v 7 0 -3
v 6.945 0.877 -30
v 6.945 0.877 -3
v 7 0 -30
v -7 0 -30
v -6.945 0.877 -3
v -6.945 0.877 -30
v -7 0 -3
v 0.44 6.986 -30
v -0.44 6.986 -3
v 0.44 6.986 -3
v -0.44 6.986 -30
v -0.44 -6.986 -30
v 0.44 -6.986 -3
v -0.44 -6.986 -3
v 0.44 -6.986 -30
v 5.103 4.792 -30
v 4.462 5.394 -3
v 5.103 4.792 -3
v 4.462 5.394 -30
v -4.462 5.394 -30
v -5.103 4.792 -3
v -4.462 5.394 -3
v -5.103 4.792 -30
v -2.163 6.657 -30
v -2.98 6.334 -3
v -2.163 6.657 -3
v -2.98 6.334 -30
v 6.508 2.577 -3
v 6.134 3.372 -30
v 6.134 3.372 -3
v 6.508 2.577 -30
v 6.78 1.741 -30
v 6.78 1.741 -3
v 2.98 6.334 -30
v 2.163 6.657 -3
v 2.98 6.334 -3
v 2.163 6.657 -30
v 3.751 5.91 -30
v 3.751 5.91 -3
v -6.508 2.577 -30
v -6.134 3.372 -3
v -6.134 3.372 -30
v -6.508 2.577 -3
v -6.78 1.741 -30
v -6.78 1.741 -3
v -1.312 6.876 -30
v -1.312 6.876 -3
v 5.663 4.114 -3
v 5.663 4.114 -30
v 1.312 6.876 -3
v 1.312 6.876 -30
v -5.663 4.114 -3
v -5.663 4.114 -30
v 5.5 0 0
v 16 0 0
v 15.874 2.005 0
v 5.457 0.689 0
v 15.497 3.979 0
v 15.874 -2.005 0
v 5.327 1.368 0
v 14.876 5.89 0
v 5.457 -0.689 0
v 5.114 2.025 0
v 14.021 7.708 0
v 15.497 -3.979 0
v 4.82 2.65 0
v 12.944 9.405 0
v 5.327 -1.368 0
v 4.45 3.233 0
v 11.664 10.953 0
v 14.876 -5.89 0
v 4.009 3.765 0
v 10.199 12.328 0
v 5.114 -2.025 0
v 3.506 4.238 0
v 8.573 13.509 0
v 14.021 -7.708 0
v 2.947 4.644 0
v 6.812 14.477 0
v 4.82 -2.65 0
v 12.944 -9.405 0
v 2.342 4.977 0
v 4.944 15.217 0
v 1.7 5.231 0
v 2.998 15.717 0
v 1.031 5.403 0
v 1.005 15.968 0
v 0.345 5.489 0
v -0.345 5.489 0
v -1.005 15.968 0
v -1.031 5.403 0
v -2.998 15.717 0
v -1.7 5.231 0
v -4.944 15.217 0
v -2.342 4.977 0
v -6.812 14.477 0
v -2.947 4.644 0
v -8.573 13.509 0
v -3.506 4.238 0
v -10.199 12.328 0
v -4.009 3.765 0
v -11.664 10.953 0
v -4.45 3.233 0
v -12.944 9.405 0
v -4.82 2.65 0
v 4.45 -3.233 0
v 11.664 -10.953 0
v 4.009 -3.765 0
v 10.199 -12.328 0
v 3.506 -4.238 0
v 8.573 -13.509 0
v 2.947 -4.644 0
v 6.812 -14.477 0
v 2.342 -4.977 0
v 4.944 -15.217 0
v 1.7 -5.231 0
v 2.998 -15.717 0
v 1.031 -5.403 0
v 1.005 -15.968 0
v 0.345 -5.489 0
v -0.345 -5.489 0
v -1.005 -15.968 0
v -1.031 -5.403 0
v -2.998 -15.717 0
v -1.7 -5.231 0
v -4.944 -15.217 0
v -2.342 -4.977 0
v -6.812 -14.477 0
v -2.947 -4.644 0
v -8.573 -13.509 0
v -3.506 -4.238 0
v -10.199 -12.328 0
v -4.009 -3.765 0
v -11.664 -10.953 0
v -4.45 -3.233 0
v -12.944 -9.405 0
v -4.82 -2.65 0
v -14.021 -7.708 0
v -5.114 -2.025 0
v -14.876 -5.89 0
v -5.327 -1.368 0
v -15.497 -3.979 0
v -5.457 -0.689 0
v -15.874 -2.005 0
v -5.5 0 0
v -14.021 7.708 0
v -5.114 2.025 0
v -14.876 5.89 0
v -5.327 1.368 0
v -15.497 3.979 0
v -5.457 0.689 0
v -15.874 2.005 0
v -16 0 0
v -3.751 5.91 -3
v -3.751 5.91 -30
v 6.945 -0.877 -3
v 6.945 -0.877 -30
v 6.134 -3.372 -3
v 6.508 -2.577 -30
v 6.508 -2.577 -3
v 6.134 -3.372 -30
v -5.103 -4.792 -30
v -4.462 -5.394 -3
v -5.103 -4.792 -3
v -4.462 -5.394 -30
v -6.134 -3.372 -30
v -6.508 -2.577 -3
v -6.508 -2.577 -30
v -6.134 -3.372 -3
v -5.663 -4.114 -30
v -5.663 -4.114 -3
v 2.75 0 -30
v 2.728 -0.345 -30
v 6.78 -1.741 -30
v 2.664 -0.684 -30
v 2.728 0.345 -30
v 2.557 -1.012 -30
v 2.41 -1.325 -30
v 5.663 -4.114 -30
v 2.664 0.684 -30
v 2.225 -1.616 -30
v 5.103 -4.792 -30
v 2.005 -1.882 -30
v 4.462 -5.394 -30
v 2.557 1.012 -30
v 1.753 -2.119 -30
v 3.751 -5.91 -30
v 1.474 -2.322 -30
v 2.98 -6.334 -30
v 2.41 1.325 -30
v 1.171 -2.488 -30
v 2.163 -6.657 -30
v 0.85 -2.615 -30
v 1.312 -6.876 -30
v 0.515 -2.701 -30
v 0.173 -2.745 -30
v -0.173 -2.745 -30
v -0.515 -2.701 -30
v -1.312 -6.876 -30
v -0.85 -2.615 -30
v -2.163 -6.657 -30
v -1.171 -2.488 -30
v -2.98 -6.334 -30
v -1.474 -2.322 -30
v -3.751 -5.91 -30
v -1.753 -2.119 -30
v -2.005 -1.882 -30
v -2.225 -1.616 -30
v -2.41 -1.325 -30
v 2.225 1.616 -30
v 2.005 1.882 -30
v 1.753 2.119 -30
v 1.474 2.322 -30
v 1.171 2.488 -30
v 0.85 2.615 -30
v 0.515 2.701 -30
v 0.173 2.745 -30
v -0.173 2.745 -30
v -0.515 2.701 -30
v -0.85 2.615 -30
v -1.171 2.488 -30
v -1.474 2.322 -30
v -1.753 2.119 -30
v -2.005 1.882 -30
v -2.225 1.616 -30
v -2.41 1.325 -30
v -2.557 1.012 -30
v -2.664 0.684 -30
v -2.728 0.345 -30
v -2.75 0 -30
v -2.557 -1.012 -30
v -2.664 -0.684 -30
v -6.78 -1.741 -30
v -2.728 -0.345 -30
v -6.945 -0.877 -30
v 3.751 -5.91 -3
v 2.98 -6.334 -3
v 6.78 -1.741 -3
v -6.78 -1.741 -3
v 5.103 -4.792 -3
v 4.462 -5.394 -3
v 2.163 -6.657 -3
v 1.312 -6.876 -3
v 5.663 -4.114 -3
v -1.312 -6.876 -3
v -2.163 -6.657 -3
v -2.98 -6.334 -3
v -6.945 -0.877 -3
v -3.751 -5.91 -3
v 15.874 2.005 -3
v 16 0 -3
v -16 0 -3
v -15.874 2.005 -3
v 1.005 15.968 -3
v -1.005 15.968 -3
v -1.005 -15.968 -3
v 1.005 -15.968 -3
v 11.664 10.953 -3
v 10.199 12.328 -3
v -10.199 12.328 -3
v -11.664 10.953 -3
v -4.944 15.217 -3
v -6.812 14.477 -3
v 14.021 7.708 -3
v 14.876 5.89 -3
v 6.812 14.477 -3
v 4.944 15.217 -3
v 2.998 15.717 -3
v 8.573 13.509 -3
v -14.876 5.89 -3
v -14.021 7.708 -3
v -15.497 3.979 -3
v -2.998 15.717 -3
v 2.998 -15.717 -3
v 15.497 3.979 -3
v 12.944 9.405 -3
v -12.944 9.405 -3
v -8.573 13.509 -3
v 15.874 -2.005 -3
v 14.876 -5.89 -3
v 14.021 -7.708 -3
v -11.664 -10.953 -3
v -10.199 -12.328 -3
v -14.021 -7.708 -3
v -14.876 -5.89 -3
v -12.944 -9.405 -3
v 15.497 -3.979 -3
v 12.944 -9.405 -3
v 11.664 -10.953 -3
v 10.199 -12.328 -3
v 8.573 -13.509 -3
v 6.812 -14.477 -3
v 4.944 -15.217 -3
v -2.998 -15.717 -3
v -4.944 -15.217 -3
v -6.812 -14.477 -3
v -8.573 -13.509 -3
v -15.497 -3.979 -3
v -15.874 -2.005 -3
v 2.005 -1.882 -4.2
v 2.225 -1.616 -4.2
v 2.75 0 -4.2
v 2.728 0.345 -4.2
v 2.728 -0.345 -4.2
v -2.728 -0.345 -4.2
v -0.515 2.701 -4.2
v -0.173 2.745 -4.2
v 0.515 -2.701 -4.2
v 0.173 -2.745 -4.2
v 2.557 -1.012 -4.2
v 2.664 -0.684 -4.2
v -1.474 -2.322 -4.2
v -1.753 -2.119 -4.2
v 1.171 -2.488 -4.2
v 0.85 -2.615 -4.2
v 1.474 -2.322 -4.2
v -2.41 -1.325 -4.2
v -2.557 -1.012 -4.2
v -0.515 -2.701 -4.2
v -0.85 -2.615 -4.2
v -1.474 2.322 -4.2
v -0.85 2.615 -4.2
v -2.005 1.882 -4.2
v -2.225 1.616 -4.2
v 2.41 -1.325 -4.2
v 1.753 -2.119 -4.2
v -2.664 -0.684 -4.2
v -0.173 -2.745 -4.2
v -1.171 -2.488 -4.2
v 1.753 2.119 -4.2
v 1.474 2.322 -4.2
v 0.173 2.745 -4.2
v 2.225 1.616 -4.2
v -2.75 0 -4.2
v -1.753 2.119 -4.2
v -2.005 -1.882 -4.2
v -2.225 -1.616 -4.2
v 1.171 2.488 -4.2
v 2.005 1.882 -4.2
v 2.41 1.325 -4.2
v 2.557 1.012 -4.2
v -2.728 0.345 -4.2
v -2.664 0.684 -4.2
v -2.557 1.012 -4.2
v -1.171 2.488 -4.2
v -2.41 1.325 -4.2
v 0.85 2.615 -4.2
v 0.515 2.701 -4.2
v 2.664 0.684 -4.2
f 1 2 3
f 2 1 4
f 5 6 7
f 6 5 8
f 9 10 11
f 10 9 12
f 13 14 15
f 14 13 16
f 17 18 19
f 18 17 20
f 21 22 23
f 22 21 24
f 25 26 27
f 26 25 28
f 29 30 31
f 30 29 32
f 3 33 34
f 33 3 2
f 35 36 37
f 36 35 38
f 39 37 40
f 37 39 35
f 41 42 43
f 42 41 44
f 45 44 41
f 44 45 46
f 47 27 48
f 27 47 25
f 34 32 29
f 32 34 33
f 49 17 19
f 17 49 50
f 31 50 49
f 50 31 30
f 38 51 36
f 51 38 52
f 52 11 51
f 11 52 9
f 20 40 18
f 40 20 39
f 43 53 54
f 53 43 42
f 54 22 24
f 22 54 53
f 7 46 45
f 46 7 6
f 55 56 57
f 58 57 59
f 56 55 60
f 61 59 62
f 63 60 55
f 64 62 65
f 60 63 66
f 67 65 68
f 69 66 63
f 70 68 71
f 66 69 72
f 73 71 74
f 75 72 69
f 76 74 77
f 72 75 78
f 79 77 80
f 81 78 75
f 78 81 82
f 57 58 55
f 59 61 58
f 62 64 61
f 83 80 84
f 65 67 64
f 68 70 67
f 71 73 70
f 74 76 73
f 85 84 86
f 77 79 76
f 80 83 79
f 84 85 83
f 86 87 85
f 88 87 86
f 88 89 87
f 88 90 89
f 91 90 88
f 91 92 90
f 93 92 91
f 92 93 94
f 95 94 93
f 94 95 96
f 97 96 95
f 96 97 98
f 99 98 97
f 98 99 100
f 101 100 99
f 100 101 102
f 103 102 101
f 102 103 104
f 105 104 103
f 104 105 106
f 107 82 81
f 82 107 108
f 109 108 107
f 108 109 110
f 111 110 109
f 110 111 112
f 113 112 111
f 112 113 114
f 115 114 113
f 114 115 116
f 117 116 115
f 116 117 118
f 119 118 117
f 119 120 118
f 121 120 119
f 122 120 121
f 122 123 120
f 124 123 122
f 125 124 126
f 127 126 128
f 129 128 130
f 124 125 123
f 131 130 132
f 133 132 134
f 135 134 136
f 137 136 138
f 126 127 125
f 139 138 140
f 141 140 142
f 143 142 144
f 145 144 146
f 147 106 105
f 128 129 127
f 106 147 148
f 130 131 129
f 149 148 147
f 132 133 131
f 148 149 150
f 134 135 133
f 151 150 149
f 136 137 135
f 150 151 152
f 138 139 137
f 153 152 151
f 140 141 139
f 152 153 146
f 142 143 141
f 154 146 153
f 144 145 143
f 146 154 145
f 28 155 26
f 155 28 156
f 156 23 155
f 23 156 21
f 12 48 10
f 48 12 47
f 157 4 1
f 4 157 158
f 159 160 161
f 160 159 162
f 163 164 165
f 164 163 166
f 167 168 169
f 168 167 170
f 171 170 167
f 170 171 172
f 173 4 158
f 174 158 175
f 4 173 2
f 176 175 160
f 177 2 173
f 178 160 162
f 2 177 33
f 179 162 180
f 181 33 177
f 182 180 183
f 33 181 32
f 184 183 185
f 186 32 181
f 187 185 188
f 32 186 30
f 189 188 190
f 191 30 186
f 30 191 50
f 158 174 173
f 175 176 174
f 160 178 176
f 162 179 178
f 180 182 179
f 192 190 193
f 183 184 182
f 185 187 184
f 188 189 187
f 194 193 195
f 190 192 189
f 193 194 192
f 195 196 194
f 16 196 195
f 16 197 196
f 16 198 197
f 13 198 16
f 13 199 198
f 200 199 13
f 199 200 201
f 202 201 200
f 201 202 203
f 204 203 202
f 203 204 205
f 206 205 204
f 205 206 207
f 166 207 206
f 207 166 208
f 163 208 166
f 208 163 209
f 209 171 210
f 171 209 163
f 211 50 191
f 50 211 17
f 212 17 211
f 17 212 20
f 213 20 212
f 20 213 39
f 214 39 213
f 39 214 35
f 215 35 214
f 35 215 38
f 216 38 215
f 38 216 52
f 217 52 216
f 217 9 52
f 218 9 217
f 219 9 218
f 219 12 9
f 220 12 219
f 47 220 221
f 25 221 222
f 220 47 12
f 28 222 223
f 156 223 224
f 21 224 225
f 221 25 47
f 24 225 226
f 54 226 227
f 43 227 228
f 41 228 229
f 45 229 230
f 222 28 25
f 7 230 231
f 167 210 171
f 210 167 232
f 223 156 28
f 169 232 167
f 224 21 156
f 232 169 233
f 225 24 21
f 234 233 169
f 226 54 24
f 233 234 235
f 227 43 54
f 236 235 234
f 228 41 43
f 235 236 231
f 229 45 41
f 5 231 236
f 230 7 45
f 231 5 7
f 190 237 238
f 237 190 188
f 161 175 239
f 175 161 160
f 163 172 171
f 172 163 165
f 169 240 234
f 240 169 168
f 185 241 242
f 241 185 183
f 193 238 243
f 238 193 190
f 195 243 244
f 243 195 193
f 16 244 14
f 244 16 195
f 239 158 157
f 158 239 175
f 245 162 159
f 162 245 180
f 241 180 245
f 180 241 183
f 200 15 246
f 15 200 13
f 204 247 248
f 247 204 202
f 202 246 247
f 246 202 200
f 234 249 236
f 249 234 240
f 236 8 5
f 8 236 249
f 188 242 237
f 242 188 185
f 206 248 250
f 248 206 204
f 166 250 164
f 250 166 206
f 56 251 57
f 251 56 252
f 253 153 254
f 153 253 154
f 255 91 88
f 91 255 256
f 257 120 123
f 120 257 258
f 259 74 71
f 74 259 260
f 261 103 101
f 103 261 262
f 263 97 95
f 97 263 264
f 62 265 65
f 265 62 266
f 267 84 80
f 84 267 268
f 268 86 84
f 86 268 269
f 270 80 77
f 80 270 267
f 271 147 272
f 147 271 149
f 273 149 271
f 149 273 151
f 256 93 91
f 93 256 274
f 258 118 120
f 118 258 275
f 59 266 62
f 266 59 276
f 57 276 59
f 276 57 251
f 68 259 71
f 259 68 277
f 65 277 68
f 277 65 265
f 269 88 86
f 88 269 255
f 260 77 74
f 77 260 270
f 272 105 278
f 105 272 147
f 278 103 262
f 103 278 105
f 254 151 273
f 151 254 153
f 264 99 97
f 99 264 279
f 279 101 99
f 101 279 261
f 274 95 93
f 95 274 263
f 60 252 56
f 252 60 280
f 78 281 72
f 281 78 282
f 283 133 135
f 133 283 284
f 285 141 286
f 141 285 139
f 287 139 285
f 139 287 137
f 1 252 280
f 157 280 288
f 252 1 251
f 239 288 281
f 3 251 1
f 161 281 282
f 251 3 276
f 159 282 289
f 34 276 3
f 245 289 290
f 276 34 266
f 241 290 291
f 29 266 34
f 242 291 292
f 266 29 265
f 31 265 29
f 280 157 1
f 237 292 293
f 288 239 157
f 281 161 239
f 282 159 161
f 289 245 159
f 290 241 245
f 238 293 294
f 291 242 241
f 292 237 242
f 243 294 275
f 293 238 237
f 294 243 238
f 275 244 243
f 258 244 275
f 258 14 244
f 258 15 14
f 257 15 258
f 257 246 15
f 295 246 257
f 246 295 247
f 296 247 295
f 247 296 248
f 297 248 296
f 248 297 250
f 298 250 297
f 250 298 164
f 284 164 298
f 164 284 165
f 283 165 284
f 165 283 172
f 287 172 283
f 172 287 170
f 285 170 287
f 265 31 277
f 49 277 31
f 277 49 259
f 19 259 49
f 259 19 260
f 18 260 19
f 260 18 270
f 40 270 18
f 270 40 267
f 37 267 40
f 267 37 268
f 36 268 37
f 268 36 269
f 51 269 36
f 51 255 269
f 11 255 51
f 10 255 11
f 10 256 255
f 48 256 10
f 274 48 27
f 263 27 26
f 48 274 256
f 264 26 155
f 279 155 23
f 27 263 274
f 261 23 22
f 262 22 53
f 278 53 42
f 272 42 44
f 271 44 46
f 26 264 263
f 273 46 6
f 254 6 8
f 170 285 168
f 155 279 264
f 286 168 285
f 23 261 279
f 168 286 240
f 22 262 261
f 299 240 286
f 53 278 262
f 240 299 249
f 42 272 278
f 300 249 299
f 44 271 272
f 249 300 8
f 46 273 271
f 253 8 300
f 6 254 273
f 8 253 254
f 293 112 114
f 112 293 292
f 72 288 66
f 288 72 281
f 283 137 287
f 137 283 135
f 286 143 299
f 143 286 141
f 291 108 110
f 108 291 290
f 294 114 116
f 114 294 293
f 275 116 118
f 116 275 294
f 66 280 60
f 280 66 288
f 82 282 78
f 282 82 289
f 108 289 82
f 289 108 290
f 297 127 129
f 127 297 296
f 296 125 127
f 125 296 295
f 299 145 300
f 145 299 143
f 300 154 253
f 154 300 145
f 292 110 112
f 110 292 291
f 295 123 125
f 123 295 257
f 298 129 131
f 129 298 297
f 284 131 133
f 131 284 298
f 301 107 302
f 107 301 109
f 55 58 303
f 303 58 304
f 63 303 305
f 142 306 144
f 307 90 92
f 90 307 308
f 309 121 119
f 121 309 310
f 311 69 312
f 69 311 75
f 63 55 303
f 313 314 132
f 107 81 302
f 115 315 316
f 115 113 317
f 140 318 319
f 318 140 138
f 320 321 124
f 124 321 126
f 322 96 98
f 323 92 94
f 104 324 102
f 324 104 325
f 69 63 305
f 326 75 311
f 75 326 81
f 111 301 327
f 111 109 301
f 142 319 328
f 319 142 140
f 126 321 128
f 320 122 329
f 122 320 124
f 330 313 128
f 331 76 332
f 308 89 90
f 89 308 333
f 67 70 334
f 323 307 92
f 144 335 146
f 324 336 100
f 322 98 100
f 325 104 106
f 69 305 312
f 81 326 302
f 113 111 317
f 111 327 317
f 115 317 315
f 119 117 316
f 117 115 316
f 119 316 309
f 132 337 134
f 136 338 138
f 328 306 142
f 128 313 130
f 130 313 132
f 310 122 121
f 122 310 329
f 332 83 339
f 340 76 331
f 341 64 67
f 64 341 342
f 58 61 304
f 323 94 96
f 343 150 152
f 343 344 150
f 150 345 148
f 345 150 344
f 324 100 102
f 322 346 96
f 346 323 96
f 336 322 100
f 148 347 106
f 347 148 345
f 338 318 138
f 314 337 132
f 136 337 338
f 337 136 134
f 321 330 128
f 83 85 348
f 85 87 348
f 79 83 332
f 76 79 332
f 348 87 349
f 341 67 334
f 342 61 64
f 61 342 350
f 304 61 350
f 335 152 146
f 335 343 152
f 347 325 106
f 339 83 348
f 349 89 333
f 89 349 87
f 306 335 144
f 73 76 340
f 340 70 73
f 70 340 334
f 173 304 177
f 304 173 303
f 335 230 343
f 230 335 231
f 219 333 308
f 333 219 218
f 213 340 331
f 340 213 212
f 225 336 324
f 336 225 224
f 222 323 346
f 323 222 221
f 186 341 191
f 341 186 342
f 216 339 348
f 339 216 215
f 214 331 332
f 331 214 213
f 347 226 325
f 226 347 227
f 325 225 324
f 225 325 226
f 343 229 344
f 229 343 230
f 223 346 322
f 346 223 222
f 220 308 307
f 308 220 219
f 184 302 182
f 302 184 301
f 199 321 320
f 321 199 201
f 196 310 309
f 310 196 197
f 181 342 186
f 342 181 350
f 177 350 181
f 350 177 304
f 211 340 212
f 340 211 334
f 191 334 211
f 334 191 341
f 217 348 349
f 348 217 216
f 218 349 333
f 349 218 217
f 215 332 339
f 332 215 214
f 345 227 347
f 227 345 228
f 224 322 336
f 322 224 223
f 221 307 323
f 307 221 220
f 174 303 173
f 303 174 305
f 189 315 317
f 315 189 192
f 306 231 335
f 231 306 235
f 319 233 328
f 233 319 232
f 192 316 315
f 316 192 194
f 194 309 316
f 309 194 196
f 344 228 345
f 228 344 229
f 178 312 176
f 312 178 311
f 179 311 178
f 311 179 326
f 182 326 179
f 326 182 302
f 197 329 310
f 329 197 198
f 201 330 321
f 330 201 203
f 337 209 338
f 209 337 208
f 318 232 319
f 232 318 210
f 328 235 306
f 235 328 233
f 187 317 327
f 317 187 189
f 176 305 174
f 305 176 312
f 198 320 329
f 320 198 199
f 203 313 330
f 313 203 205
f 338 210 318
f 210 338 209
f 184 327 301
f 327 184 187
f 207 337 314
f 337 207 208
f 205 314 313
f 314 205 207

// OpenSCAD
$fn = 50;


difference() {
	union() {
		translate(v = [0, 0, -30.0000000000]) {
			cylinder(h = 30, r = 7.0000000000);
		}
		translate(v = [0, 0, -3.0000000000]) {
			cylinder(h = 3, r = 16.0000000000);
		}
	}
	union() {
		translate(v = [0, 0, 0]) {
			rotate(a = [0, 0, 0]) {
				difference() {
					union() {
						#translate(v = [0, 0, -30.0000000000]) {
							cylinder(h = 30, r = 2.2500000000);
						}
						#translate(v = [0, 0, -4.2000000000]) {
							cylinder(h = 4.2000000000, r1 = 2.7500000000, r2 = 5.5000000000);
						}
						#translate(v = [0, 0, -30.0000000000]) {
							cylinder(h = 30, r = 2.7500000000);
						}
						#translate(v = [0, 0, -30.0000000000]) {
							cylinder(h = 30, r = 2.2500000000);
						}
					}
					union();
				}
			}
		}
	}
}
